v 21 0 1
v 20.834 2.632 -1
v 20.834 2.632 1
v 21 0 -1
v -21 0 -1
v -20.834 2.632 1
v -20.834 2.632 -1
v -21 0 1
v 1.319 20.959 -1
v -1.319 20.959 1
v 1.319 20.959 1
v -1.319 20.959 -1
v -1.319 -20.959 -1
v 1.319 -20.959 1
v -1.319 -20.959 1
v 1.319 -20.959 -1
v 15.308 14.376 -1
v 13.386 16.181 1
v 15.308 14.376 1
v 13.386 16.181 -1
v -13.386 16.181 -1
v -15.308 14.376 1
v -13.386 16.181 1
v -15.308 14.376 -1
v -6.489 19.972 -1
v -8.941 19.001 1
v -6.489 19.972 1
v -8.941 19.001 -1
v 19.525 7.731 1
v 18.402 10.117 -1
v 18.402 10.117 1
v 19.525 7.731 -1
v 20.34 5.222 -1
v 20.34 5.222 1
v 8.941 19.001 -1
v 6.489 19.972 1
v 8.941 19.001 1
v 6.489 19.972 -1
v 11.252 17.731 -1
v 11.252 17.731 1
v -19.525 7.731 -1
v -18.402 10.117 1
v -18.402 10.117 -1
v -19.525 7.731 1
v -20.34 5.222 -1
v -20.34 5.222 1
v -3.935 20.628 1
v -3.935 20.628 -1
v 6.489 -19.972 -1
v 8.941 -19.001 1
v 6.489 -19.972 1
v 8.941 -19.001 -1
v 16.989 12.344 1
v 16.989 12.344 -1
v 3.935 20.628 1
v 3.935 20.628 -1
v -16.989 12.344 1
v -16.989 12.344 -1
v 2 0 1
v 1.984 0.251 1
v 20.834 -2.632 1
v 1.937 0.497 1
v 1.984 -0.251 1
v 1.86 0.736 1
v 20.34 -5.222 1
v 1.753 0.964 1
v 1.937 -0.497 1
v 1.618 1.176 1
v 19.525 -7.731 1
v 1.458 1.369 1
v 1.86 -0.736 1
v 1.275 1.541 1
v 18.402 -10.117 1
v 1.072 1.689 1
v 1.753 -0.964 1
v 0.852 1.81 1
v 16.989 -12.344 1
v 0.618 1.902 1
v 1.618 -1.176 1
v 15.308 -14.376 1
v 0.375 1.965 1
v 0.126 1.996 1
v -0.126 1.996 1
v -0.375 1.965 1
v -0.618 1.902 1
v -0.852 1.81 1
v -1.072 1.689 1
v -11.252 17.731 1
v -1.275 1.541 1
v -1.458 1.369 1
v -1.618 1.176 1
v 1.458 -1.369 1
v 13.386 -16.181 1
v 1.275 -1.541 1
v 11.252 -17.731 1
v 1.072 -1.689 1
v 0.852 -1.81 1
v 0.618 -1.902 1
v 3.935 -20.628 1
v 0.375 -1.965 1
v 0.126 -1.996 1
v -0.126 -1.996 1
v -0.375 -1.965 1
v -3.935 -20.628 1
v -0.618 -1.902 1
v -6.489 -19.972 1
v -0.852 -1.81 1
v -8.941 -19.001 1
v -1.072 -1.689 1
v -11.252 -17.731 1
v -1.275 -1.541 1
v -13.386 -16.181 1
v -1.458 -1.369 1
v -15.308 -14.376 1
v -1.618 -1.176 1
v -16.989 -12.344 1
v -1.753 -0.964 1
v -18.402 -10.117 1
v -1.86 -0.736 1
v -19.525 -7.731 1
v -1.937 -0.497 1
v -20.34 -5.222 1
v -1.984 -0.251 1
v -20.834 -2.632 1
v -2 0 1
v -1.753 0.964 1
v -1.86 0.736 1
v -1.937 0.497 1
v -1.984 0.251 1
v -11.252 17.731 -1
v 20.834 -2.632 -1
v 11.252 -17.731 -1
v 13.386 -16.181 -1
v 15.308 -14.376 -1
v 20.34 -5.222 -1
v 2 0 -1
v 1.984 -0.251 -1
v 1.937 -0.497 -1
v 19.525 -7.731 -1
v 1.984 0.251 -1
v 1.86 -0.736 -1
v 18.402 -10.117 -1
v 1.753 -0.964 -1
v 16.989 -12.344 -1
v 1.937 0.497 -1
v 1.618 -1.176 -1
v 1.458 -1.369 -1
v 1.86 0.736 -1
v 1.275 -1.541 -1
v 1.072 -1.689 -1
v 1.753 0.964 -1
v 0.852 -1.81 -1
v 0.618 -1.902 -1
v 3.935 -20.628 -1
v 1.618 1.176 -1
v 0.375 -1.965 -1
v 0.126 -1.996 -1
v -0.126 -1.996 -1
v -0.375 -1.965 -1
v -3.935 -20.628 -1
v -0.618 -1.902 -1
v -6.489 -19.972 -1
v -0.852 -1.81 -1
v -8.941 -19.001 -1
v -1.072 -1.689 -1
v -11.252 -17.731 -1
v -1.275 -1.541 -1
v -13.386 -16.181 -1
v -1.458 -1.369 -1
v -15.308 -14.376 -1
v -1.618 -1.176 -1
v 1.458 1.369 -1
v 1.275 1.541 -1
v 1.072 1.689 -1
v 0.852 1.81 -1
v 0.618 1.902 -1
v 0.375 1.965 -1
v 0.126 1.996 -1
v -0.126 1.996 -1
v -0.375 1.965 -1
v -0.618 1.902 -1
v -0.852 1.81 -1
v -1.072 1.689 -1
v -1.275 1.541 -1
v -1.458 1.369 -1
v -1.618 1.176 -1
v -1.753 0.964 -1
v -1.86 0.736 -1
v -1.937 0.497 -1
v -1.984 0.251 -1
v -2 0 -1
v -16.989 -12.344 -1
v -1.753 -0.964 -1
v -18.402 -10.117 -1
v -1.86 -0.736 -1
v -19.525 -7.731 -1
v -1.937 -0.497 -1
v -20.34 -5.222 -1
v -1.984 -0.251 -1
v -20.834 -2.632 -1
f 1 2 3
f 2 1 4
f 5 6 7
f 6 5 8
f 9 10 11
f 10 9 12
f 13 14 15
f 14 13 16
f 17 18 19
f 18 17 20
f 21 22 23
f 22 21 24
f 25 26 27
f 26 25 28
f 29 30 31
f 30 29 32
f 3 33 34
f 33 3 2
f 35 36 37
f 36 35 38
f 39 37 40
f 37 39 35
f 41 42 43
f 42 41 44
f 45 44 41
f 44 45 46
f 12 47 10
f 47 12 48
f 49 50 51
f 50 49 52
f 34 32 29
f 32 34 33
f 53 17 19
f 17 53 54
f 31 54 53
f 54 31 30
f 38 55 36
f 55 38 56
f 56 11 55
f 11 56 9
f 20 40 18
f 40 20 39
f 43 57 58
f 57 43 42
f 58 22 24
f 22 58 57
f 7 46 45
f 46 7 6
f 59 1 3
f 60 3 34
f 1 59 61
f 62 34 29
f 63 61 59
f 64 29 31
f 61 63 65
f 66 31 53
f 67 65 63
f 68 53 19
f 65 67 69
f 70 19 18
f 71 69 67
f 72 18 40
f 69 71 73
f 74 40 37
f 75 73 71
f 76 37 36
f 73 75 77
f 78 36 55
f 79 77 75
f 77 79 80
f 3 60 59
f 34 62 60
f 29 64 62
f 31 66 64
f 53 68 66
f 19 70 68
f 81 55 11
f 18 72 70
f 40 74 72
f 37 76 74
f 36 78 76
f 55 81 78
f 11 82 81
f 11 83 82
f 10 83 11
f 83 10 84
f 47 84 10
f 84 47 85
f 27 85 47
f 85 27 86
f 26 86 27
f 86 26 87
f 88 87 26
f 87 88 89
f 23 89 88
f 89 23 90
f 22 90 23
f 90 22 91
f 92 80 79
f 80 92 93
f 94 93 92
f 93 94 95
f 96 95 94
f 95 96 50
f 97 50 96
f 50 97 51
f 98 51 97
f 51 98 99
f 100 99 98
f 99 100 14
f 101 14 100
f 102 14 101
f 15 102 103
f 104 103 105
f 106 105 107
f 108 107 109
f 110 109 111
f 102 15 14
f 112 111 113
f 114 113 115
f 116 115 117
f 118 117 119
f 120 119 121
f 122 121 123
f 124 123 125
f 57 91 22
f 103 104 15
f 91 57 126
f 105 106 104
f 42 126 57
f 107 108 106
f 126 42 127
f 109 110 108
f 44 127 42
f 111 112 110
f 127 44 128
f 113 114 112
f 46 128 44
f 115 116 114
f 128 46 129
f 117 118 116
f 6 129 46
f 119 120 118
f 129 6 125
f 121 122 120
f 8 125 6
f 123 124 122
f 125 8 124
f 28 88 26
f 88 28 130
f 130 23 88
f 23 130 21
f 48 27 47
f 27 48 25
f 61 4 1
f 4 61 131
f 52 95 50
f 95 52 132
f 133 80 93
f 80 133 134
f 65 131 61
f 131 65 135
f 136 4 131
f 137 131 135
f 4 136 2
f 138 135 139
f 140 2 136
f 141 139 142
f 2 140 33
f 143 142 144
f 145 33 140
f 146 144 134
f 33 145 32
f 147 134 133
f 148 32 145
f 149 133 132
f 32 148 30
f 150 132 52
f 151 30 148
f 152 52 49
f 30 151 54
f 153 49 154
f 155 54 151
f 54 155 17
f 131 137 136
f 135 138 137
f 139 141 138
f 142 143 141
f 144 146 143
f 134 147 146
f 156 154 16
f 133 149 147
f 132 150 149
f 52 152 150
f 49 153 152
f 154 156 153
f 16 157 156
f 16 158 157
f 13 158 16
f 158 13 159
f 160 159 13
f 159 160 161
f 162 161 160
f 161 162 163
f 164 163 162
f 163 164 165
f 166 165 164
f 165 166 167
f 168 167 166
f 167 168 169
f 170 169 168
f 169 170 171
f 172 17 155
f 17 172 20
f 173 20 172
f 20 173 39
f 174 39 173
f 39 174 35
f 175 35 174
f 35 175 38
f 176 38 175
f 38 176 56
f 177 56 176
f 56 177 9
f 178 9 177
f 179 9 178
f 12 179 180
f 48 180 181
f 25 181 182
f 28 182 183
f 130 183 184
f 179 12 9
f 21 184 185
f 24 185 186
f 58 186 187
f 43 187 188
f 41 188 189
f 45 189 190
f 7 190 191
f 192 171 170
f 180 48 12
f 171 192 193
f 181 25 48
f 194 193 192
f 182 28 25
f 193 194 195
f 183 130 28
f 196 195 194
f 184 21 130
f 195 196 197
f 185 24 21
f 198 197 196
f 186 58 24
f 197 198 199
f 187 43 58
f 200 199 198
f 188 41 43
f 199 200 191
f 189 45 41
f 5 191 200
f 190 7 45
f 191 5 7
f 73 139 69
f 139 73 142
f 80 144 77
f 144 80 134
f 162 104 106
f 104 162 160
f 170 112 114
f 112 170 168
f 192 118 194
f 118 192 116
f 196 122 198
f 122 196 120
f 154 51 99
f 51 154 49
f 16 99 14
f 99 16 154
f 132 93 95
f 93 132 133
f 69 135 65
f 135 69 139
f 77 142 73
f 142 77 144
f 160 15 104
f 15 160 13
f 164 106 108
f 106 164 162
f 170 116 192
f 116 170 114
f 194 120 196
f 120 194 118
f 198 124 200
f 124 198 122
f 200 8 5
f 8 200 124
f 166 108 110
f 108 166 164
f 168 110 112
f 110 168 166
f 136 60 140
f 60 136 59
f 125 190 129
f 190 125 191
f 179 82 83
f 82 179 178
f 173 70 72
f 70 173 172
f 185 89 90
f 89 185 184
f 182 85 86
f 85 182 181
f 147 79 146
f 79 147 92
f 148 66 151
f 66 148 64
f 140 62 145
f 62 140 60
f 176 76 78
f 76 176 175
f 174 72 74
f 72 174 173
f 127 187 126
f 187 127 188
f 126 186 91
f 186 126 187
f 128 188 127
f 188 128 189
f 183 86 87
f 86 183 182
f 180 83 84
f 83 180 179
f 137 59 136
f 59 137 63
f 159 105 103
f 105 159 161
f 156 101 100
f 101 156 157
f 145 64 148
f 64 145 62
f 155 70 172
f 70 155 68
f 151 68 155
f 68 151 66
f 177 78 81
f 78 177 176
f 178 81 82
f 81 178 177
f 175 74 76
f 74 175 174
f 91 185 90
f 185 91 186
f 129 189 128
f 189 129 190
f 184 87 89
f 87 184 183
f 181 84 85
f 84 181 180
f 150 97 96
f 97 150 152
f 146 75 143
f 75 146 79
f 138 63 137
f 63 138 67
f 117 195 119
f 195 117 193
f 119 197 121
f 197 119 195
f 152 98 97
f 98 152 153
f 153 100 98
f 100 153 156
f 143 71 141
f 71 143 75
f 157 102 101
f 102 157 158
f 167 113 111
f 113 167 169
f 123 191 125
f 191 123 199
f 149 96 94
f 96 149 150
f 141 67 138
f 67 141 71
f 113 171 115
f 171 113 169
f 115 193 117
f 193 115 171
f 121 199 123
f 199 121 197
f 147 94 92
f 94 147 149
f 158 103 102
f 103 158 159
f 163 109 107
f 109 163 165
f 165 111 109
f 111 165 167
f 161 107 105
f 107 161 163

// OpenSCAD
$fn = 50;


difference() {
	union() {
		translate(v = [0, 0, -1.0000000000]) {
			cylinder(h = 2, r = 21.0000000000);
		}
	}
	union() {
		translate(v = [0, 0, -100.0000000000]) {
			cylinder(h = 200, r = 2);
		}
	}
}
